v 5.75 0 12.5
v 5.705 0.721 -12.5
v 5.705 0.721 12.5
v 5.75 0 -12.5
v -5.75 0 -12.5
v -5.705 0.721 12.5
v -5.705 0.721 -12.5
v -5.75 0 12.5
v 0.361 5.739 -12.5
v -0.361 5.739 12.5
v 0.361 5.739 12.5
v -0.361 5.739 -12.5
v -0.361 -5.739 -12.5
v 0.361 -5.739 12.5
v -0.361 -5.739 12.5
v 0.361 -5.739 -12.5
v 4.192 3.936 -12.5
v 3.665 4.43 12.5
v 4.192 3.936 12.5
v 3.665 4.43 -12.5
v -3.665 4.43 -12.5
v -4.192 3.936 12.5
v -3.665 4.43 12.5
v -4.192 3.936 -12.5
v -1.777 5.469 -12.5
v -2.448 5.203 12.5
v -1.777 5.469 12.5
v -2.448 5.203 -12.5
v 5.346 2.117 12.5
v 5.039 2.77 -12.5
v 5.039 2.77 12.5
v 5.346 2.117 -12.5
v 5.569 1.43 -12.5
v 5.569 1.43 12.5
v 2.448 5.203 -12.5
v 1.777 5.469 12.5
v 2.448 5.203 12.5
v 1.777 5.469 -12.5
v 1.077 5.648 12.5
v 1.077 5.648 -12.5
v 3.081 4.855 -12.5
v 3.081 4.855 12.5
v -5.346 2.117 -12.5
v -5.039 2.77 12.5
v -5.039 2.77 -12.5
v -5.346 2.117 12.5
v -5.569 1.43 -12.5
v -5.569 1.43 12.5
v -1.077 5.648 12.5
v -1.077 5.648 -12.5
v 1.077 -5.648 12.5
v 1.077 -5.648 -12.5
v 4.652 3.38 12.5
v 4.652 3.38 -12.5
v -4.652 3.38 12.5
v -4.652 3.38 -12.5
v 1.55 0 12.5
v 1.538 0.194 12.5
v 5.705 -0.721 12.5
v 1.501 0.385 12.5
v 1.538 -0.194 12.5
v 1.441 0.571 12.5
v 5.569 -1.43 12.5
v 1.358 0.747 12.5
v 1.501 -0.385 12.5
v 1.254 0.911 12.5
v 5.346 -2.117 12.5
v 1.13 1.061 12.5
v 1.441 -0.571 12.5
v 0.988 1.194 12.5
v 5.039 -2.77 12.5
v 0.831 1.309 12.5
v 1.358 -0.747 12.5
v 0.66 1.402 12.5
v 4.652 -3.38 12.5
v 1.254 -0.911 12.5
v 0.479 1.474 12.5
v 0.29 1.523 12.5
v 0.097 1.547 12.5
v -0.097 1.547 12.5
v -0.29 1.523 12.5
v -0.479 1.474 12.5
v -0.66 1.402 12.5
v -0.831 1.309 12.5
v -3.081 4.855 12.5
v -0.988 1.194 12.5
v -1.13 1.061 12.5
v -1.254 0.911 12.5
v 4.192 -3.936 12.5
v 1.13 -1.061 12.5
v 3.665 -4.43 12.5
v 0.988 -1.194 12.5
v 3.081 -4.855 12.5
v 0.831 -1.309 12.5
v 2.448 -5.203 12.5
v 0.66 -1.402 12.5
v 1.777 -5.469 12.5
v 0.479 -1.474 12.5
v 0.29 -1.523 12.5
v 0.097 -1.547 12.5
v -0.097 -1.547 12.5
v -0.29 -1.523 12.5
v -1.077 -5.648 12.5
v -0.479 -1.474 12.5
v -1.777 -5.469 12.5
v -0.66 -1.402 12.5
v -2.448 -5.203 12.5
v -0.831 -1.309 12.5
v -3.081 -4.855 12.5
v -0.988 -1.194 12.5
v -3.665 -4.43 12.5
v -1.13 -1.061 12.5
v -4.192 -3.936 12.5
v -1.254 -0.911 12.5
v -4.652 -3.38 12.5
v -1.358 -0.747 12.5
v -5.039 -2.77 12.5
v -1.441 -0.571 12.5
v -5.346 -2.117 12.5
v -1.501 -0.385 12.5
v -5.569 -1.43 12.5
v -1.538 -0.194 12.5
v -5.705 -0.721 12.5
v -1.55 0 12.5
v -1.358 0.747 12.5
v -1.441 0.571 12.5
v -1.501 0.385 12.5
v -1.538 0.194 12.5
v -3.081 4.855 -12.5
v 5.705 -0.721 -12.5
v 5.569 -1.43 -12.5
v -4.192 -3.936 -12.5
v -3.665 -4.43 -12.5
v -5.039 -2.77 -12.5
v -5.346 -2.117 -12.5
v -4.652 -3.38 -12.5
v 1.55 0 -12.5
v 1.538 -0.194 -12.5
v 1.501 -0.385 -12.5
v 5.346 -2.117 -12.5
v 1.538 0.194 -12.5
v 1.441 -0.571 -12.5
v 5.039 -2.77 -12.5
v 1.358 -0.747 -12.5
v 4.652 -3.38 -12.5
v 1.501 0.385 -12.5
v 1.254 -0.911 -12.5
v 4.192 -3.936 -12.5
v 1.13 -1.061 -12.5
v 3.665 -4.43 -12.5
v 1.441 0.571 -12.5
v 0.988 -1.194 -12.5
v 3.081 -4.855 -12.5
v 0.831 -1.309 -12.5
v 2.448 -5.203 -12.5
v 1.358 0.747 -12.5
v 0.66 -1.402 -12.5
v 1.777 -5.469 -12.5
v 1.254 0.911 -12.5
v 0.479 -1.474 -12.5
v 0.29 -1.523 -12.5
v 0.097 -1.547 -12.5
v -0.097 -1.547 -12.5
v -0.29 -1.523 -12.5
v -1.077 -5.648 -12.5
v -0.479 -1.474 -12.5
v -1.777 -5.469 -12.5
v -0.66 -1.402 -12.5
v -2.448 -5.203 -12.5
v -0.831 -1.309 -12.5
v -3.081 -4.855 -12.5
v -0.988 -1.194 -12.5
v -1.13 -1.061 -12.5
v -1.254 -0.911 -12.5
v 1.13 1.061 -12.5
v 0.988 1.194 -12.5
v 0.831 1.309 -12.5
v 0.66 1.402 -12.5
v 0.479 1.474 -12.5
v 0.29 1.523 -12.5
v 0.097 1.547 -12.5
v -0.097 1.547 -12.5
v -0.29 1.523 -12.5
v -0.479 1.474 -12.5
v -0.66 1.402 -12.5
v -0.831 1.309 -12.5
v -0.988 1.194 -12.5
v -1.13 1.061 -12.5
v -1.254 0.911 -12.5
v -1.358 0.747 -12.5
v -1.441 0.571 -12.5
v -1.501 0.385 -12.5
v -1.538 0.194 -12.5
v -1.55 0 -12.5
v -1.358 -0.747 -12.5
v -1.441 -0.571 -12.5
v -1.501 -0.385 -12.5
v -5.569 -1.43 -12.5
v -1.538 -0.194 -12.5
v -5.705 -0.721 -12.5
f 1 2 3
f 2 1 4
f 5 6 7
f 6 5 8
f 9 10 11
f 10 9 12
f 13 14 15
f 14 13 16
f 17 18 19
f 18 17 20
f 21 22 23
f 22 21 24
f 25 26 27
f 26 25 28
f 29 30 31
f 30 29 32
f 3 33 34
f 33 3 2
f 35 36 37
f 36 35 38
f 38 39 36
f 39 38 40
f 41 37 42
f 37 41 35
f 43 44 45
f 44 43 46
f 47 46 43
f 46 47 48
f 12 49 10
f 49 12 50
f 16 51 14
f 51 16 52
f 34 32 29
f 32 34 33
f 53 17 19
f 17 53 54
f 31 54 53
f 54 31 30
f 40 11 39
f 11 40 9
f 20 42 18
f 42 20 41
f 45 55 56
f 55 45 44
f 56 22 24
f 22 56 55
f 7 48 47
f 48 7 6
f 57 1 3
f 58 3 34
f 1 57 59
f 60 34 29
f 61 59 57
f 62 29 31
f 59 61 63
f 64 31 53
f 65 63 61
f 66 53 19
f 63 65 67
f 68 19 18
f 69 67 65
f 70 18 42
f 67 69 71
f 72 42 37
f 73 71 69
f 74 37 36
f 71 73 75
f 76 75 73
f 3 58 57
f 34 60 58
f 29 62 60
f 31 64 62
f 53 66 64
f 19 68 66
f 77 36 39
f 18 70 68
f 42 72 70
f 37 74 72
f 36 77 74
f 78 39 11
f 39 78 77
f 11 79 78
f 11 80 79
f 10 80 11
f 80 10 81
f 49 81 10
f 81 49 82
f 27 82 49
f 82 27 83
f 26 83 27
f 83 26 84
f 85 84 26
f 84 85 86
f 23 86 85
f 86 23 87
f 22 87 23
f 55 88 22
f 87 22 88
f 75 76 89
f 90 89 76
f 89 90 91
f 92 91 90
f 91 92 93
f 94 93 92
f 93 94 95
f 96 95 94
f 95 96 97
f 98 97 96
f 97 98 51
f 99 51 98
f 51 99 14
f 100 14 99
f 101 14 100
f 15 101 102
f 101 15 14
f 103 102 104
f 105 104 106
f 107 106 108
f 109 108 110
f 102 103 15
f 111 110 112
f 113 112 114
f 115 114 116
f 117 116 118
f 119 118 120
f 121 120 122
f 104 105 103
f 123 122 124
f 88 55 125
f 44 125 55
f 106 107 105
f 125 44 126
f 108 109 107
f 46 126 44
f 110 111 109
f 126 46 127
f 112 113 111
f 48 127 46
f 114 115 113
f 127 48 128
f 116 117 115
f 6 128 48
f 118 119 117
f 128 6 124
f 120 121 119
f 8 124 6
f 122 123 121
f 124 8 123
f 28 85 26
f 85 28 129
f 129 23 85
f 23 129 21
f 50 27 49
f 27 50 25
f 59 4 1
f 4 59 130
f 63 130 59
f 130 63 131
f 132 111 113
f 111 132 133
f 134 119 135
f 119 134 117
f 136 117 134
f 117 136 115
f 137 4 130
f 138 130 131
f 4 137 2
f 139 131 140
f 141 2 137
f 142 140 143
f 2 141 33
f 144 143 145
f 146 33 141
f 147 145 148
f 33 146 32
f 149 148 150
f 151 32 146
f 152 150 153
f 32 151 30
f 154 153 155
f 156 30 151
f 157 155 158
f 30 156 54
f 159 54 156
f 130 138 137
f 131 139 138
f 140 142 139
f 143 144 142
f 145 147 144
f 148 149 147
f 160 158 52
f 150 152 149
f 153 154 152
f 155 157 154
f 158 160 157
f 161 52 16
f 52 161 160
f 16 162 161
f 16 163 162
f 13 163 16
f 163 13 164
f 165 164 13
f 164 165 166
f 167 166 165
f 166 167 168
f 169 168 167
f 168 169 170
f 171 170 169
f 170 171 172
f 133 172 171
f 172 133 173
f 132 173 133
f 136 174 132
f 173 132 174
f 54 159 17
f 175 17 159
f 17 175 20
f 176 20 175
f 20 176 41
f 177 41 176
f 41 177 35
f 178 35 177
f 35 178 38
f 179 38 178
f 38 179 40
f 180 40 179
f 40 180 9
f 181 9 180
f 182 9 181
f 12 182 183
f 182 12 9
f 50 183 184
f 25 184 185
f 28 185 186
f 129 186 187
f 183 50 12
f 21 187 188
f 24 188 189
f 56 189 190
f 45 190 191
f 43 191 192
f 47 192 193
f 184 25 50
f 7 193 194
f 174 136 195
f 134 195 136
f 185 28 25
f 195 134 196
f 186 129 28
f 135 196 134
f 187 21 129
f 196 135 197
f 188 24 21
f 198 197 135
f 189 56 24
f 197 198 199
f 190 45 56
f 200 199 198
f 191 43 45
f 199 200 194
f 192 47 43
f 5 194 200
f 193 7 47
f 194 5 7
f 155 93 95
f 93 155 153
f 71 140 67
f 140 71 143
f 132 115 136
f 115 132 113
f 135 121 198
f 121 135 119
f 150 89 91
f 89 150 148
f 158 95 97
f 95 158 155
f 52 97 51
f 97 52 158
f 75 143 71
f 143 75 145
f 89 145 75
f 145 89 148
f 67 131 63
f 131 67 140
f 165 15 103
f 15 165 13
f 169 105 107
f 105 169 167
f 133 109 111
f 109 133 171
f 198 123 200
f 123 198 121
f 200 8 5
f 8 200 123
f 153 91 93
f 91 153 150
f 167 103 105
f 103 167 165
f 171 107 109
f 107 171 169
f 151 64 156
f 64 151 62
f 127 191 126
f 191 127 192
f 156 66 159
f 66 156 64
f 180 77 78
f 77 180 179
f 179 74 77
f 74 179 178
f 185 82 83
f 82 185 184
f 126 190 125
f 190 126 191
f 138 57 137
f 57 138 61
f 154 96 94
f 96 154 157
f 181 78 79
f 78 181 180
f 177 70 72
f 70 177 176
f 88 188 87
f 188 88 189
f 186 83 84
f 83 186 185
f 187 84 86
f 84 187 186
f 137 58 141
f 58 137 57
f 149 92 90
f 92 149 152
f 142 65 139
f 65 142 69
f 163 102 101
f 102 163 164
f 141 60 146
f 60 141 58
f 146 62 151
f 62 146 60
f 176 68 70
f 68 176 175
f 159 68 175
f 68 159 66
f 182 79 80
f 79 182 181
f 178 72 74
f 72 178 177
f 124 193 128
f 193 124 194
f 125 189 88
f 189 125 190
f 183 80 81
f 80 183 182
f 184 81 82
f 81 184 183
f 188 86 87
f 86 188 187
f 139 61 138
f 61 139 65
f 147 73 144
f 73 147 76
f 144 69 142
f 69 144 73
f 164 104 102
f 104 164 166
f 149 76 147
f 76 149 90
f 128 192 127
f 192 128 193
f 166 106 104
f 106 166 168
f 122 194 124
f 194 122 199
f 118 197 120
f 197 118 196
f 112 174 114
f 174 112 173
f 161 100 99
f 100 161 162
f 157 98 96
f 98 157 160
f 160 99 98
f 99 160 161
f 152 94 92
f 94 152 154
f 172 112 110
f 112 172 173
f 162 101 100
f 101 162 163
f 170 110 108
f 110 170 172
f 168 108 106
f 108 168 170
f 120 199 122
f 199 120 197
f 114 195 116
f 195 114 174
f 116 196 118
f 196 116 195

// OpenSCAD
$fn = 50;


difference() {
	union() {
		translate(v = [0, 0, -12.5000000000]) {
			cylinder(h = 25, r = 5.7500000000);
		}
	}
	union() {
		translate(v = [0, 0, -100.0000000000]) {
			cylinder(h = 200, r = 1.5500000000);
		}
	}
}
